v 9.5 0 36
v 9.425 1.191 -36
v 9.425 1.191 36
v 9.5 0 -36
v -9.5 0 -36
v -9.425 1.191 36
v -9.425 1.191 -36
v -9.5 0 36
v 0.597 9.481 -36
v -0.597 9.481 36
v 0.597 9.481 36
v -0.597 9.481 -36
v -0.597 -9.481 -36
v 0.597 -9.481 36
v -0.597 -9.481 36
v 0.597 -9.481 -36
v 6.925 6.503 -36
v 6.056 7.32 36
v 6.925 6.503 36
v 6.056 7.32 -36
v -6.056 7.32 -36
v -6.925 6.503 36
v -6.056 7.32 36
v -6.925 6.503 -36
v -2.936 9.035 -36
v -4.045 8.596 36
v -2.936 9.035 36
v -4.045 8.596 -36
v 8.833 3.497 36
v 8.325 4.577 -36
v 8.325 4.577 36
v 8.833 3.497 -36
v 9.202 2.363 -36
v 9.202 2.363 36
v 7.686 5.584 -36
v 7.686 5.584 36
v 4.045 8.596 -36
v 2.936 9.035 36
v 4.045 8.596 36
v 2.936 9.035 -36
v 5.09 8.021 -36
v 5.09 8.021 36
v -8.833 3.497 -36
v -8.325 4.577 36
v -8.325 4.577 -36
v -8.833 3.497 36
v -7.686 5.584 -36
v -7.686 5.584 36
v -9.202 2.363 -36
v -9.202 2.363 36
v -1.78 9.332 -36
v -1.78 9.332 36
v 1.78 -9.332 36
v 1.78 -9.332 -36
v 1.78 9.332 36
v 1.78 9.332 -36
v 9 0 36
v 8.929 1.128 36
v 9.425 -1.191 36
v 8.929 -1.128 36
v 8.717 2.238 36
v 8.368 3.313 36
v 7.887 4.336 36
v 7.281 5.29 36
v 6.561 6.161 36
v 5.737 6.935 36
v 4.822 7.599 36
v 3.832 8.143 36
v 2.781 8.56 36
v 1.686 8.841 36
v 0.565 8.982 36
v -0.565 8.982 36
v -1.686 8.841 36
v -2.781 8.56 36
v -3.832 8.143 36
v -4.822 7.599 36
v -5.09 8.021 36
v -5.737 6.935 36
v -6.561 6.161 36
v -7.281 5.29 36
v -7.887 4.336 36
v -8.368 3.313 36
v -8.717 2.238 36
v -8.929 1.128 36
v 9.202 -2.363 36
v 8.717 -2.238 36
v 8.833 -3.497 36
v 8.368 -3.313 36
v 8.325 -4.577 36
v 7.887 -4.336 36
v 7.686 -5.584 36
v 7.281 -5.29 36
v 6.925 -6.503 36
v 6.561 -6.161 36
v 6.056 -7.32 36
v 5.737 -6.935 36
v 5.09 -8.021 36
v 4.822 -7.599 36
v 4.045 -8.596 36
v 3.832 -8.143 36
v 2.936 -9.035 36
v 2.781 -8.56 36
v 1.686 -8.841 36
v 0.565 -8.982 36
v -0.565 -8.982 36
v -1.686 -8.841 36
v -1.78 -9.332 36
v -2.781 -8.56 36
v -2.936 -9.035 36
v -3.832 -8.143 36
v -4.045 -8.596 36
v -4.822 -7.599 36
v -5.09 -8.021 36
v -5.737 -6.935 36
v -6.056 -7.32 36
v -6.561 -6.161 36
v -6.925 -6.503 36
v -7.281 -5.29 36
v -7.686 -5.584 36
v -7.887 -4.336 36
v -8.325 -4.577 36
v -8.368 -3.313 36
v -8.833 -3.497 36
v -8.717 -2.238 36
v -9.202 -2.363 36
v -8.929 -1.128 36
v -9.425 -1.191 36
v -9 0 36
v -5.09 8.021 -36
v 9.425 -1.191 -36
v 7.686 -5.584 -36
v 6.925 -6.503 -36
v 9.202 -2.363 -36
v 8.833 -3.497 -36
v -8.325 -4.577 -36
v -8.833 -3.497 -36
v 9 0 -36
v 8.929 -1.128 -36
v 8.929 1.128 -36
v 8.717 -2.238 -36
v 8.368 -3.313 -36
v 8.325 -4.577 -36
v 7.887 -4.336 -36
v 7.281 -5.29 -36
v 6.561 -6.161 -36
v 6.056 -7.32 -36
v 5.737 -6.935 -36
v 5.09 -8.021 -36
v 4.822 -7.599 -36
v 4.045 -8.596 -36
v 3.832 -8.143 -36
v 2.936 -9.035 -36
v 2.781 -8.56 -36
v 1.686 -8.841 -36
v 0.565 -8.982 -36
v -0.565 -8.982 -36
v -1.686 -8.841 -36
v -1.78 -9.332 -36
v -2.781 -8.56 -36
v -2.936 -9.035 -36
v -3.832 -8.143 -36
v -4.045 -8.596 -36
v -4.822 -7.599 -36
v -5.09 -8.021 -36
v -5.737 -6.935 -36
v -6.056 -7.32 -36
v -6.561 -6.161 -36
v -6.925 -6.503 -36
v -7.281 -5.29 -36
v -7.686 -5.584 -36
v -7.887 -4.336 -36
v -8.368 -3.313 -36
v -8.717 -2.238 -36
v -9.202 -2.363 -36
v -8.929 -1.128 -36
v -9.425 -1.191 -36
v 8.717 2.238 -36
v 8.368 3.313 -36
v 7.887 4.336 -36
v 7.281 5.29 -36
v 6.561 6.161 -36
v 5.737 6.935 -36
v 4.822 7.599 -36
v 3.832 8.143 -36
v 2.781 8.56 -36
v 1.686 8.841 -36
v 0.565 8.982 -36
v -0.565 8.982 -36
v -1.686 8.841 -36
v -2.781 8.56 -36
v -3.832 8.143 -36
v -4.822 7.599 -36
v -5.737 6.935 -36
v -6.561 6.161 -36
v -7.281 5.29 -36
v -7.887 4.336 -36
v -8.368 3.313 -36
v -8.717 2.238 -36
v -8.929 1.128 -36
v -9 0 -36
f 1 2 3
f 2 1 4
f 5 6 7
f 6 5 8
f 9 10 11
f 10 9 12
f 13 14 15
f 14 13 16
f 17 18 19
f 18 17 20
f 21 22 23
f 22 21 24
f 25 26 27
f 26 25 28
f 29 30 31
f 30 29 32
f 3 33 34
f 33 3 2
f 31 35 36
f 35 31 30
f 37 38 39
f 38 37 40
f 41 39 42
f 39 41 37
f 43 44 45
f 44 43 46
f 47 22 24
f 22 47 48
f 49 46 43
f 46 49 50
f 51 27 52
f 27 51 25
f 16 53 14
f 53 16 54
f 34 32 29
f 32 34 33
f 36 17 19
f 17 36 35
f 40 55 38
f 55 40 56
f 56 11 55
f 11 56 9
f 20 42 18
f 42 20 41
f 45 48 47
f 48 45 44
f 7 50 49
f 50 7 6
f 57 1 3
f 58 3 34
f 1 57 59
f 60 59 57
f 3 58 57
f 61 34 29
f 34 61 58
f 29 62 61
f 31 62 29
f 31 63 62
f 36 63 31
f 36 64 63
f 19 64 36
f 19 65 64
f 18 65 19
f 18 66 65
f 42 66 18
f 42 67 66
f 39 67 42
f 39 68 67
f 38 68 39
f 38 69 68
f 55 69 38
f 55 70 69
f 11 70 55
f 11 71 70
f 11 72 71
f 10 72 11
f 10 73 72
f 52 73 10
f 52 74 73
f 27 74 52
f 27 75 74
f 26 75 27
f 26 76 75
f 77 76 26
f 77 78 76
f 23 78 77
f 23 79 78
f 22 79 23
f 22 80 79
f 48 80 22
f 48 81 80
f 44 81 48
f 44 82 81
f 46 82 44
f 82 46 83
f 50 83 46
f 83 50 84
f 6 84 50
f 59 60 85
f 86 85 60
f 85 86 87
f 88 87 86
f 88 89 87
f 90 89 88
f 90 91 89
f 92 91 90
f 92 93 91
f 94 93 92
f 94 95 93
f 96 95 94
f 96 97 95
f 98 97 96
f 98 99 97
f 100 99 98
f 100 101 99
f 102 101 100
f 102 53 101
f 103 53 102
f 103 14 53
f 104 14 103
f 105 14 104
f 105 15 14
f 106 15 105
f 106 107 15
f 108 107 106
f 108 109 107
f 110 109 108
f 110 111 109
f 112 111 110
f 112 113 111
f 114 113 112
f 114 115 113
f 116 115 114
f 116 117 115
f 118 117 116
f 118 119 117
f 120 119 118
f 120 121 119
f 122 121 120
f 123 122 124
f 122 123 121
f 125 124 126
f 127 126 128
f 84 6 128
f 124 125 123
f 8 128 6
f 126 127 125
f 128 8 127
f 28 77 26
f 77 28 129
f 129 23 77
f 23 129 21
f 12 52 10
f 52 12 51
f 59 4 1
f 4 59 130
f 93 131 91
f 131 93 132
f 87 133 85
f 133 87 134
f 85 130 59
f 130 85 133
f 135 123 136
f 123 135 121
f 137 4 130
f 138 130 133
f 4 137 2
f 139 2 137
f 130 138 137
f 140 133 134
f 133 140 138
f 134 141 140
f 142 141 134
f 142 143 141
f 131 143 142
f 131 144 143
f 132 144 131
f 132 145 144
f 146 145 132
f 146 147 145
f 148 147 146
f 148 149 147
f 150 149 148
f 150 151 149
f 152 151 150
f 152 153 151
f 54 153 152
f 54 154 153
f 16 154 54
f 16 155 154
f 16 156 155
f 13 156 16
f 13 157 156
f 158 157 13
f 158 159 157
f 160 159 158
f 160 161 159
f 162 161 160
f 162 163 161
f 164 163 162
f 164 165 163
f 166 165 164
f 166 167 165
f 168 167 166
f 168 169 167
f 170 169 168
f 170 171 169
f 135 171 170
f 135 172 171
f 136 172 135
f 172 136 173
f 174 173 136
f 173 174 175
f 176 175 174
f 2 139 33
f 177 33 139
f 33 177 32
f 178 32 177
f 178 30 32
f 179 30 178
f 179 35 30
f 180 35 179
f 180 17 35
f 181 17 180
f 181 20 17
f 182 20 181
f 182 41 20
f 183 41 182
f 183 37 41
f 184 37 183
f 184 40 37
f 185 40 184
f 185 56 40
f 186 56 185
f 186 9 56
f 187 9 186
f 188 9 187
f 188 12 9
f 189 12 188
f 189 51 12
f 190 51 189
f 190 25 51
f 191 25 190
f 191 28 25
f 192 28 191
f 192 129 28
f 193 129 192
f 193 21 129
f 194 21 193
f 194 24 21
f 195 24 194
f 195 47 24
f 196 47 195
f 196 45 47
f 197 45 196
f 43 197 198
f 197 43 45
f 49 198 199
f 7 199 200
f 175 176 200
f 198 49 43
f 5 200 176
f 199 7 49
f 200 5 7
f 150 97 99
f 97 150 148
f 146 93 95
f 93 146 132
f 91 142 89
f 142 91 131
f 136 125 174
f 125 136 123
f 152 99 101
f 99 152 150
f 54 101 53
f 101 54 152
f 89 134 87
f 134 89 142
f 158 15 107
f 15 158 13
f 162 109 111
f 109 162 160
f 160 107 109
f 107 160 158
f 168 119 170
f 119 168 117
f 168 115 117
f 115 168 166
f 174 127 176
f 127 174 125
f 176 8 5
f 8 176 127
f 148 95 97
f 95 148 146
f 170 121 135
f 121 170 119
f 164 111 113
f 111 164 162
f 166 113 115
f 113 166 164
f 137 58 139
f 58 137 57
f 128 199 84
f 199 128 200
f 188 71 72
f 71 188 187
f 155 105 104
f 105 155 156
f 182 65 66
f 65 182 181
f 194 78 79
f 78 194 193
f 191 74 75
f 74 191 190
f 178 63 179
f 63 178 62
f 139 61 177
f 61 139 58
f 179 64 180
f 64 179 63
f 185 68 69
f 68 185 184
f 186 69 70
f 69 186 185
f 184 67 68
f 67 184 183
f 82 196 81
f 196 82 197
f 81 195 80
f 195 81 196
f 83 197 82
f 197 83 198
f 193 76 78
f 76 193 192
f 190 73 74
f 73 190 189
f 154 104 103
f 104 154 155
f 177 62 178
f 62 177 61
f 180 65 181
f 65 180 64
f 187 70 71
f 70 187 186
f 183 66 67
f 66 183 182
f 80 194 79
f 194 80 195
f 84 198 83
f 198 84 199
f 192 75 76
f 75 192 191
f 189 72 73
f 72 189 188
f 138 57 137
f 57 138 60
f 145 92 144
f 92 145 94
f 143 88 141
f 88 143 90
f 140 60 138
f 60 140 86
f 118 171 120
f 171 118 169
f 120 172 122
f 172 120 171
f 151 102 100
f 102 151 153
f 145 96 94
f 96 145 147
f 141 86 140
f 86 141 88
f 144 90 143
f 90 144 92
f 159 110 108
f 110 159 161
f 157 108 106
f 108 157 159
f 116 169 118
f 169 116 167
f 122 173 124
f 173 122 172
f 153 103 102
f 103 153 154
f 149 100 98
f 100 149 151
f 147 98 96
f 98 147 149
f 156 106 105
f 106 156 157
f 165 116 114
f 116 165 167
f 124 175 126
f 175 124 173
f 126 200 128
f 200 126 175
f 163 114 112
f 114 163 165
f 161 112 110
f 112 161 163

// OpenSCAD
$fn = 50;


difference() {
	union() {
		translate(v = [0, 0, -36.0000000000]) {
			cylinder(h = 72, r = 9.5000000000);
		}
	}
	union() {
		translate(v = [0, 0, -100.0000000000]) {
			cylinder(h = 200, r = 9);
		}
	}
}
